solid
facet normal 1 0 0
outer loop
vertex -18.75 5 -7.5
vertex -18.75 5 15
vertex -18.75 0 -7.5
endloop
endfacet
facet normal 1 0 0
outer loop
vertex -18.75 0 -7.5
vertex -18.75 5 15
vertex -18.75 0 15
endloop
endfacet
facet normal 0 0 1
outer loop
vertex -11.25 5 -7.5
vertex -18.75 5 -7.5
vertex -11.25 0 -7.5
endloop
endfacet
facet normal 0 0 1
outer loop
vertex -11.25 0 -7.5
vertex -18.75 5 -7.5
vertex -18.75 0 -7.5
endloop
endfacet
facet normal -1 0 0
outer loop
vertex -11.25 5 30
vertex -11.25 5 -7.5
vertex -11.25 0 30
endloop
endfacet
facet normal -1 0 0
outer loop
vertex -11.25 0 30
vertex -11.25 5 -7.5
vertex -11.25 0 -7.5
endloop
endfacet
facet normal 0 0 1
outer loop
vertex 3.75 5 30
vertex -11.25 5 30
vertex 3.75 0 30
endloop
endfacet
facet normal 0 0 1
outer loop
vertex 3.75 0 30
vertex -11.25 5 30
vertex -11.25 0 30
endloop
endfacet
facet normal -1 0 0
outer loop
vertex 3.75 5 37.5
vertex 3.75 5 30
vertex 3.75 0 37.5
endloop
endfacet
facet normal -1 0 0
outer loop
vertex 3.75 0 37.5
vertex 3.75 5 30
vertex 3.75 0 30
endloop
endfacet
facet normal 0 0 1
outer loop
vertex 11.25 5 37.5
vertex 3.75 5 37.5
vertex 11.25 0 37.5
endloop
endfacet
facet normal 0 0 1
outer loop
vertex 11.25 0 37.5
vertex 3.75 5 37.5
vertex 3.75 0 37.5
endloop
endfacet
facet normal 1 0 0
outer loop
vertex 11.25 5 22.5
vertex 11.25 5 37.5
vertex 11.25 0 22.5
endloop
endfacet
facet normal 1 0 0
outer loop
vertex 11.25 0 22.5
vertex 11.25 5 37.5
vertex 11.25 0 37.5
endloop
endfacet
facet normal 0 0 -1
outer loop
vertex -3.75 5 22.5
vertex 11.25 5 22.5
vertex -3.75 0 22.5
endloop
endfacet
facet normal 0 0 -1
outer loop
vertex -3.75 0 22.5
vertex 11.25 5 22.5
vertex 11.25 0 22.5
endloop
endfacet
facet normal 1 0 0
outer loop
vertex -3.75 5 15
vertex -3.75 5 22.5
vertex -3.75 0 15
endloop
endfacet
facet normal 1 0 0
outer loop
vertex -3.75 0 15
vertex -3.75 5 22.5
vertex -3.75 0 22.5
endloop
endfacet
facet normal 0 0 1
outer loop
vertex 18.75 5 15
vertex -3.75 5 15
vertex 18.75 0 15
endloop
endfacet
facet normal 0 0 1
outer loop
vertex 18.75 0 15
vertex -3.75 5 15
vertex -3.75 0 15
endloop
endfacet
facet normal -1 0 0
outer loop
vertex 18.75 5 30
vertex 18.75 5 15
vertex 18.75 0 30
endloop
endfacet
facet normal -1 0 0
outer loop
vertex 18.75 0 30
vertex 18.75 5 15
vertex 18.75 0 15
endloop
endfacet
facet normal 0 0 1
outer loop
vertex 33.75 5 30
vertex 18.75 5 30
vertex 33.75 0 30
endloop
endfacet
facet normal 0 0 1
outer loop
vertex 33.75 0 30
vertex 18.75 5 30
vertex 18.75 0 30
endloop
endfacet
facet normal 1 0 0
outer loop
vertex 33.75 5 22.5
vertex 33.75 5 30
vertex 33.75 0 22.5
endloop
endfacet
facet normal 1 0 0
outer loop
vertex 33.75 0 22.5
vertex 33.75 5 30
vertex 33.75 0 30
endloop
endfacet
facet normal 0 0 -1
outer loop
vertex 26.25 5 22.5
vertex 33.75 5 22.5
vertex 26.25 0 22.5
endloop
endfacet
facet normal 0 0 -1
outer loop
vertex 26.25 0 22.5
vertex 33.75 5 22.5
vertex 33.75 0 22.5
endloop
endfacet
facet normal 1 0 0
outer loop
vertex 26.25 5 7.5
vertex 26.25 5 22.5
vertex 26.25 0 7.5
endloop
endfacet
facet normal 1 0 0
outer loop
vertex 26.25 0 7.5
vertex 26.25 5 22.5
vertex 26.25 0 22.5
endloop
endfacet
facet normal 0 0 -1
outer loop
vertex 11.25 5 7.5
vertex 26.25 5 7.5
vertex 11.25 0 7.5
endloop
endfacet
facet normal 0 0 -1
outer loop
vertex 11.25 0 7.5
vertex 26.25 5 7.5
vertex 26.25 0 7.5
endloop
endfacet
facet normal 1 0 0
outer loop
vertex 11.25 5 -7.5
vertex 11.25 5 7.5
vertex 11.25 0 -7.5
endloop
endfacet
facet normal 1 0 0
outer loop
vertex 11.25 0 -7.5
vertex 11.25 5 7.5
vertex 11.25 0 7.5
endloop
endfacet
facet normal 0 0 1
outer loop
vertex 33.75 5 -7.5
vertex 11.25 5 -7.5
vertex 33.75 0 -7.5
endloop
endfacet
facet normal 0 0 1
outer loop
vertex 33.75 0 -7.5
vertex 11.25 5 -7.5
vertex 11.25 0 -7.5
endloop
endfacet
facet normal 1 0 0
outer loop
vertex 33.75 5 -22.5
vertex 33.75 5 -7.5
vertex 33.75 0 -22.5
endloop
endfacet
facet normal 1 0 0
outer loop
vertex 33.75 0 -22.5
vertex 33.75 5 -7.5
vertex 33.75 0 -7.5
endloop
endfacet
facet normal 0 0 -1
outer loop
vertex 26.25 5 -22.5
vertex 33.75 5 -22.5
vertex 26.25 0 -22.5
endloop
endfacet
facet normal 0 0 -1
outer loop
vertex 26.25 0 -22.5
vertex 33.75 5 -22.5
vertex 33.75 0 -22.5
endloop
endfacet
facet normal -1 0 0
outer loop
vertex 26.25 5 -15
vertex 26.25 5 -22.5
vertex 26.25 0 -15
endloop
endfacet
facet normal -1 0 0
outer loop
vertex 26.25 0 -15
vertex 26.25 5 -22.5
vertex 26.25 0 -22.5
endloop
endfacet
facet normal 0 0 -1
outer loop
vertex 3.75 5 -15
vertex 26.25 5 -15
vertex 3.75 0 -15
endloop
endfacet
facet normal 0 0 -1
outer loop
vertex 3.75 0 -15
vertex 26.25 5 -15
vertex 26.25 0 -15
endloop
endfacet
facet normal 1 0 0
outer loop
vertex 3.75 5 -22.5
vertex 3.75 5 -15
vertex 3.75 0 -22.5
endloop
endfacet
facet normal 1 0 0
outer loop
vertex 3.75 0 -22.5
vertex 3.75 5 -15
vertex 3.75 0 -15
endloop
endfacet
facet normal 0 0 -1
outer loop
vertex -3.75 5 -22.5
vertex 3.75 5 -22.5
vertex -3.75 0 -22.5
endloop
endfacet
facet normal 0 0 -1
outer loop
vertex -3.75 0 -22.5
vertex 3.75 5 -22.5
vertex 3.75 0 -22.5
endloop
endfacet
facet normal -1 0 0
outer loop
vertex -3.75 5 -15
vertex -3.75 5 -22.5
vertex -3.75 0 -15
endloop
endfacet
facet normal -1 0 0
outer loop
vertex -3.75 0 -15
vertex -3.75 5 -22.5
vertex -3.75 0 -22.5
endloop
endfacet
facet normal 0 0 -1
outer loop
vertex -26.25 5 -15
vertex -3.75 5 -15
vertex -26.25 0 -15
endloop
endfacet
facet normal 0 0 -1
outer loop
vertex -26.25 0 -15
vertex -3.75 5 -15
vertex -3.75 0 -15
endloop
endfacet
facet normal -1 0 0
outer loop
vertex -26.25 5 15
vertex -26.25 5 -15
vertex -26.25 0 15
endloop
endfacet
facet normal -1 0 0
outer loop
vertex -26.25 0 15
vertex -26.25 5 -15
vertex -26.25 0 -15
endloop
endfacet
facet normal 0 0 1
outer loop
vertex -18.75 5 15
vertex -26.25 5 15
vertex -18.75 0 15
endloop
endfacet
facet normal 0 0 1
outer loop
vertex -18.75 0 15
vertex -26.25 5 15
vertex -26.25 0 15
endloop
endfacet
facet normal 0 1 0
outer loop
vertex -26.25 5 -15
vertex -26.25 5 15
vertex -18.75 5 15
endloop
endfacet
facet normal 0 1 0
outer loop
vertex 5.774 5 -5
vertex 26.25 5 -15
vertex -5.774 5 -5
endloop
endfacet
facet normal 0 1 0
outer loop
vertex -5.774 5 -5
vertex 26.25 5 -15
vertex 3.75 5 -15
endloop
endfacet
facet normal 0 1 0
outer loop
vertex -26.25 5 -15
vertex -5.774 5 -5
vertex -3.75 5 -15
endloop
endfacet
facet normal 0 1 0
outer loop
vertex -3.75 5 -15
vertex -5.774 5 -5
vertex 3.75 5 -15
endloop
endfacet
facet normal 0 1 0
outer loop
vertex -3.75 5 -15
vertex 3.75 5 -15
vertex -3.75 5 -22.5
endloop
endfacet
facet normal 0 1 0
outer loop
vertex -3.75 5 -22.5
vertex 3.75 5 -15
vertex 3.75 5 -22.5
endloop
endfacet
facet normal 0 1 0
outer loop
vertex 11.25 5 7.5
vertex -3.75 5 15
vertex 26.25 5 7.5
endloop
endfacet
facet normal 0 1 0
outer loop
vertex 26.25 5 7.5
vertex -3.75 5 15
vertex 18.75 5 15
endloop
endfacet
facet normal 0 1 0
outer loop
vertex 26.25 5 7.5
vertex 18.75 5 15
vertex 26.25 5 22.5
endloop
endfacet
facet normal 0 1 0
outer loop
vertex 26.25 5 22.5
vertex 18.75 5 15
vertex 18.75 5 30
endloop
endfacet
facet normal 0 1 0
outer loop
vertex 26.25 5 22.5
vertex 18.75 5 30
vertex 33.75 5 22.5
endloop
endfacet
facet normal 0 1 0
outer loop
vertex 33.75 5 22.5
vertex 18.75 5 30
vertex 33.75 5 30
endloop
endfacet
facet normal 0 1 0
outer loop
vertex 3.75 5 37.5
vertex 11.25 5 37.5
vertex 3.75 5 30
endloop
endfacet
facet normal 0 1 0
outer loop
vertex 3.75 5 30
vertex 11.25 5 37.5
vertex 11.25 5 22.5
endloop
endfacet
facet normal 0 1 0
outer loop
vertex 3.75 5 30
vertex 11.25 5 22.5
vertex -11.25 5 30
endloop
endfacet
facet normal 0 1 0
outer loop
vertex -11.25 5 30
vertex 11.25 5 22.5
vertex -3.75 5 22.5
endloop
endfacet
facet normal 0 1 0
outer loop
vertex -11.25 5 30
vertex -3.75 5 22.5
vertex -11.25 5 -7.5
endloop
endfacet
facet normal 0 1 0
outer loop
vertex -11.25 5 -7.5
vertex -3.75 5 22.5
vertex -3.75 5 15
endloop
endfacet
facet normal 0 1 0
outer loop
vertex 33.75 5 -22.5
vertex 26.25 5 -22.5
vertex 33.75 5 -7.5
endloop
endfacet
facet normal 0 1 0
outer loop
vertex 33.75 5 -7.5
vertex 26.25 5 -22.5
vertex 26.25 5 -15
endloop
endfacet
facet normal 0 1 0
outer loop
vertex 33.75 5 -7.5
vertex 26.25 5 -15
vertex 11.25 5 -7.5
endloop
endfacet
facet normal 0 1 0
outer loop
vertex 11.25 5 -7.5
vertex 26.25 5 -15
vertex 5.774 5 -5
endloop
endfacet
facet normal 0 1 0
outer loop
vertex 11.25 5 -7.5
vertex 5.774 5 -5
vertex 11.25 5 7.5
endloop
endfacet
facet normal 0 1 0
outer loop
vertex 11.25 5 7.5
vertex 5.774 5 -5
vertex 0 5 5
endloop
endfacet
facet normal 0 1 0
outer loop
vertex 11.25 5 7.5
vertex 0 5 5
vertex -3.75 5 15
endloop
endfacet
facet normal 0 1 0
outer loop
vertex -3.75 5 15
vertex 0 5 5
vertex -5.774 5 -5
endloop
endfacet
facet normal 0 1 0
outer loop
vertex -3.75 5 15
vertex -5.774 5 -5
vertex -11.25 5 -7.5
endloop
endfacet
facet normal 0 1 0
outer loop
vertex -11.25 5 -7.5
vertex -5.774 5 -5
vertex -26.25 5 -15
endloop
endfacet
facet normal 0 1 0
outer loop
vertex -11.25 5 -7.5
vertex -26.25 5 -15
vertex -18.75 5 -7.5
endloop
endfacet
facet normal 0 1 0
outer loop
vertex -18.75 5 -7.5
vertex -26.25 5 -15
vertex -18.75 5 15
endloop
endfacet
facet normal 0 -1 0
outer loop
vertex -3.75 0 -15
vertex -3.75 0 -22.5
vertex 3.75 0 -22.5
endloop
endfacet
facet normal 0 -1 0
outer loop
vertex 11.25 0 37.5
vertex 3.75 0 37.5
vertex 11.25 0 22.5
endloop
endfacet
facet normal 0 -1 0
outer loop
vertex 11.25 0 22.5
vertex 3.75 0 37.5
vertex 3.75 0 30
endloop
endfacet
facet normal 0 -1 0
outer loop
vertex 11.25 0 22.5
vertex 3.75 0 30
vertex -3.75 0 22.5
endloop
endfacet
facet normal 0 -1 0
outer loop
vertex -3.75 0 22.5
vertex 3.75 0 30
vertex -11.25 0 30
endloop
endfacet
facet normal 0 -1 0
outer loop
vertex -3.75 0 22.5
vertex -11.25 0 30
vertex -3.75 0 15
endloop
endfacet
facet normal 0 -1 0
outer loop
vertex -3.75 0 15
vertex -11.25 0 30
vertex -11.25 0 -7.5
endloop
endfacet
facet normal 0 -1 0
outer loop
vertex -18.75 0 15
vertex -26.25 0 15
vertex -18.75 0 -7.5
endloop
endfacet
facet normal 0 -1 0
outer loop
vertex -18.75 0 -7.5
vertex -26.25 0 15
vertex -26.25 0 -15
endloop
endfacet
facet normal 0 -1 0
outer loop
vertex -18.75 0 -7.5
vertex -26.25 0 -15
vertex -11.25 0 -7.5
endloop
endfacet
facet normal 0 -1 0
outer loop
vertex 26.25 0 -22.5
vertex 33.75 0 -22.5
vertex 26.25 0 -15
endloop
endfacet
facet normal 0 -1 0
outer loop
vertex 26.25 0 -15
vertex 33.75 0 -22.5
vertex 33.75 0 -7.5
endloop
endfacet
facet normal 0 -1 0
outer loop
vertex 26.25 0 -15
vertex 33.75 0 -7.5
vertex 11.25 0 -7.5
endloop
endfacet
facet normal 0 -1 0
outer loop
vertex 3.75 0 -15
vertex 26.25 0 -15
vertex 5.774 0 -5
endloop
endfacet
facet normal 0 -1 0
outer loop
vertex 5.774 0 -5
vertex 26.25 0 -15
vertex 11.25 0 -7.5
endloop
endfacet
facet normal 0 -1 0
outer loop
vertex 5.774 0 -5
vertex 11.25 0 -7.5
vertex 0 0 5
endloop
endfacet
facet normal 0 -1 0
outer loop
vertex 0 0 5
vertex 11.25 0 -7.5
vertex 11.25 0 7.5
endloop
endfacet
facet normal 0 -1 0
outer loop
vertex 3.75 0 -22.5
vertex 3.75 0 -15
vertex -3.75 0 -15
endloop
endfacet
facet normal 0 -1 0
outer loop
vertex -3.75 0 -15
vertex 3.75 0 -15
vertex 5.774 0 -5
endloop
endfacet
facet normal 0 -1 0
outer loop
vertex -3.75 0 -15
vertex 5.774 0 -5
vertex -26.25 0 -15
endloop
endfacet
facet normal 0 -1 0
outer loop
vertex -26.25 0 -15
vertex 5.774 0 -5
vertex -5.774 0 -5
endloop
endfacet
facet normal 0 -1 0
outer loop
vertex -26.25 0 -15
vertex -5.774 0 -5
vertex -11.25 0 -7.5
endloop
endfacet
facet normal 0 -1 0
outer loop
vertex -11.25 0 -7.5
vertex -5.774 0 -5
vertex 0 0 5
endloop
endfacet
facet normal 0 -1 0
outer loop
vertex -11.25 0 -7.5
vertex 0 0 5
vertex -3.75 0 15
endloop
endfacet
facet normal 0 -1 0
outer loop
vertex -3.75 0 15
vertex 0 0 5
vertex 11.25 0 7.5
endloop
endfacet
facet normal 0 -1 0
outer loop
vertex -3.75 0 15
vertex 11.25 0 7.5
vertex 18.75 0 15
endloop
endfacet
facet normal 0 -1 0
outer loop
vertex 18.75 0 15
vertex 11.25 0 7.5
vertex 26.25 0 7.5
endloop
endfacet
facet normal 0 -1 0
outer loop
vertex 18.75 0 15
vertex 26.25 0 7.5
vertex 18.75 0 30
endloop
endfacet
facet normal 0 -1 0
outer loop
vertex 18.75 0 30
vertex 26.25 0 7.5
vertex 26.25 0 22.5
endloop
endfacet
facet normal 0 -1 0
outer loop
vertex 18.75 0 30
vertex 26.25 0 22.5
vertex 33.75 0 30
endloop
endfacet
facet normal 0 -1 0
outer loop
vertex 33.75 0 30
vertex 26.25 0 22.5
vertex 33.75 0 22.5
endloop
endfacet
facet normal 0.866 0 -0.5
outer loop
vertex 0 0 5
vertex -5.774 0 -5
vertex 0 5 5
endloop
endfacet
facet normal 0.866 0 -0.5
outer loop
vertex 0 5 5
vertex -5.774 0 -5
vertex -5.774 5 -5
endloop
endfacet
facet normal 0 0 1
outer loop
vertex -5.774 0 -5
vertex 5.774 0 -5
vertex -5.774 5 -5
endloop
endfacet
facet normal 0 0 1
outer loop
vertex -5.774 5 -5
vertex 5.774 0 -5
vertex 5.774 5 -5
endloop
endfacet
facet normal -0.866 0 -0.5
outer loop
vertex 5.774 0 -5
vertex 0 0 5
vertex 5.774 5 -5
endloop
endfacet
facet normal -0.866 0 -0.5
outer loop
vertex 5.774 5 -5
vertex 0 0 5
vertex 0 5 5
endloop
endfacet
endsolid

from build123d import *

# Parameters (mm, degrees)
SKETCH1_W           = 22.5
SKETCH1_H           = 30
SKETCH1_W_2         = 7.5
SKETCH1_H_2         = 7.5
BOSS_EXTRUDE1_DEPTH = 5
CUT_EXTRUDE1_DEPTH  = 51.698249477


with BuildPart() as part:
    # Sketch1 → Boss-Extrude1 (new body)
    with BuildSketch(Plane(origin=(0, 0, 0), x_dir=(1, 0, 0), z_dir=(0, 1, 0))):
        Polygon((-11.25, 7.5), (-11.25, 15), (-26.25, 15), (-26.25, -15), (-18.75, -15), (-18.75, 7.5), align=None)
        Rectangle(SKETCH1_W, SKETCH1_H)
        with Locations((0, 18.75)):
            Rectangle(SKETCH1_W_2, SKETCH1_H_2)
        Polygon((26.25, 15), (11.25, 15), (11.25, 7.5), (33.75, 7.5), (33.75, 22.5), (26.25, 22.5), align=None)
        Polygon((26.25, -7.5), (11.25, -7.5), (11.25, -15), (18.75, -15), (18.75, -30), (33.75, -30), (33.75, -22.5), (26.25, -22.5), align=None)
        Polygon((-3.75, -22.5), (-3.75, -15), (-11.25, -15), (-11.25, -30), (3.75, -30), (3.75, -37.5), (11.25, -37.5), (11.25, -22.5), align=None)
    extrude(amount=BOSS_EXTRUDE1_DEPTH)

    # Sketch2 → Cut-Extrude1 (cut, through all)
    with BuildSketch(Plane(origin=(0, 5, 0), x_dir=(1, 0, 0), z_dir=(0, 1, 0))):
        Polygon((-5.773502692, 5), (5.773502692, 5), (0, -5), align=None)
    extrude(amount=-CUT_EXTRUDE1_DEPTH, mode=Mode.SUBTRACT)


solid = part.part
